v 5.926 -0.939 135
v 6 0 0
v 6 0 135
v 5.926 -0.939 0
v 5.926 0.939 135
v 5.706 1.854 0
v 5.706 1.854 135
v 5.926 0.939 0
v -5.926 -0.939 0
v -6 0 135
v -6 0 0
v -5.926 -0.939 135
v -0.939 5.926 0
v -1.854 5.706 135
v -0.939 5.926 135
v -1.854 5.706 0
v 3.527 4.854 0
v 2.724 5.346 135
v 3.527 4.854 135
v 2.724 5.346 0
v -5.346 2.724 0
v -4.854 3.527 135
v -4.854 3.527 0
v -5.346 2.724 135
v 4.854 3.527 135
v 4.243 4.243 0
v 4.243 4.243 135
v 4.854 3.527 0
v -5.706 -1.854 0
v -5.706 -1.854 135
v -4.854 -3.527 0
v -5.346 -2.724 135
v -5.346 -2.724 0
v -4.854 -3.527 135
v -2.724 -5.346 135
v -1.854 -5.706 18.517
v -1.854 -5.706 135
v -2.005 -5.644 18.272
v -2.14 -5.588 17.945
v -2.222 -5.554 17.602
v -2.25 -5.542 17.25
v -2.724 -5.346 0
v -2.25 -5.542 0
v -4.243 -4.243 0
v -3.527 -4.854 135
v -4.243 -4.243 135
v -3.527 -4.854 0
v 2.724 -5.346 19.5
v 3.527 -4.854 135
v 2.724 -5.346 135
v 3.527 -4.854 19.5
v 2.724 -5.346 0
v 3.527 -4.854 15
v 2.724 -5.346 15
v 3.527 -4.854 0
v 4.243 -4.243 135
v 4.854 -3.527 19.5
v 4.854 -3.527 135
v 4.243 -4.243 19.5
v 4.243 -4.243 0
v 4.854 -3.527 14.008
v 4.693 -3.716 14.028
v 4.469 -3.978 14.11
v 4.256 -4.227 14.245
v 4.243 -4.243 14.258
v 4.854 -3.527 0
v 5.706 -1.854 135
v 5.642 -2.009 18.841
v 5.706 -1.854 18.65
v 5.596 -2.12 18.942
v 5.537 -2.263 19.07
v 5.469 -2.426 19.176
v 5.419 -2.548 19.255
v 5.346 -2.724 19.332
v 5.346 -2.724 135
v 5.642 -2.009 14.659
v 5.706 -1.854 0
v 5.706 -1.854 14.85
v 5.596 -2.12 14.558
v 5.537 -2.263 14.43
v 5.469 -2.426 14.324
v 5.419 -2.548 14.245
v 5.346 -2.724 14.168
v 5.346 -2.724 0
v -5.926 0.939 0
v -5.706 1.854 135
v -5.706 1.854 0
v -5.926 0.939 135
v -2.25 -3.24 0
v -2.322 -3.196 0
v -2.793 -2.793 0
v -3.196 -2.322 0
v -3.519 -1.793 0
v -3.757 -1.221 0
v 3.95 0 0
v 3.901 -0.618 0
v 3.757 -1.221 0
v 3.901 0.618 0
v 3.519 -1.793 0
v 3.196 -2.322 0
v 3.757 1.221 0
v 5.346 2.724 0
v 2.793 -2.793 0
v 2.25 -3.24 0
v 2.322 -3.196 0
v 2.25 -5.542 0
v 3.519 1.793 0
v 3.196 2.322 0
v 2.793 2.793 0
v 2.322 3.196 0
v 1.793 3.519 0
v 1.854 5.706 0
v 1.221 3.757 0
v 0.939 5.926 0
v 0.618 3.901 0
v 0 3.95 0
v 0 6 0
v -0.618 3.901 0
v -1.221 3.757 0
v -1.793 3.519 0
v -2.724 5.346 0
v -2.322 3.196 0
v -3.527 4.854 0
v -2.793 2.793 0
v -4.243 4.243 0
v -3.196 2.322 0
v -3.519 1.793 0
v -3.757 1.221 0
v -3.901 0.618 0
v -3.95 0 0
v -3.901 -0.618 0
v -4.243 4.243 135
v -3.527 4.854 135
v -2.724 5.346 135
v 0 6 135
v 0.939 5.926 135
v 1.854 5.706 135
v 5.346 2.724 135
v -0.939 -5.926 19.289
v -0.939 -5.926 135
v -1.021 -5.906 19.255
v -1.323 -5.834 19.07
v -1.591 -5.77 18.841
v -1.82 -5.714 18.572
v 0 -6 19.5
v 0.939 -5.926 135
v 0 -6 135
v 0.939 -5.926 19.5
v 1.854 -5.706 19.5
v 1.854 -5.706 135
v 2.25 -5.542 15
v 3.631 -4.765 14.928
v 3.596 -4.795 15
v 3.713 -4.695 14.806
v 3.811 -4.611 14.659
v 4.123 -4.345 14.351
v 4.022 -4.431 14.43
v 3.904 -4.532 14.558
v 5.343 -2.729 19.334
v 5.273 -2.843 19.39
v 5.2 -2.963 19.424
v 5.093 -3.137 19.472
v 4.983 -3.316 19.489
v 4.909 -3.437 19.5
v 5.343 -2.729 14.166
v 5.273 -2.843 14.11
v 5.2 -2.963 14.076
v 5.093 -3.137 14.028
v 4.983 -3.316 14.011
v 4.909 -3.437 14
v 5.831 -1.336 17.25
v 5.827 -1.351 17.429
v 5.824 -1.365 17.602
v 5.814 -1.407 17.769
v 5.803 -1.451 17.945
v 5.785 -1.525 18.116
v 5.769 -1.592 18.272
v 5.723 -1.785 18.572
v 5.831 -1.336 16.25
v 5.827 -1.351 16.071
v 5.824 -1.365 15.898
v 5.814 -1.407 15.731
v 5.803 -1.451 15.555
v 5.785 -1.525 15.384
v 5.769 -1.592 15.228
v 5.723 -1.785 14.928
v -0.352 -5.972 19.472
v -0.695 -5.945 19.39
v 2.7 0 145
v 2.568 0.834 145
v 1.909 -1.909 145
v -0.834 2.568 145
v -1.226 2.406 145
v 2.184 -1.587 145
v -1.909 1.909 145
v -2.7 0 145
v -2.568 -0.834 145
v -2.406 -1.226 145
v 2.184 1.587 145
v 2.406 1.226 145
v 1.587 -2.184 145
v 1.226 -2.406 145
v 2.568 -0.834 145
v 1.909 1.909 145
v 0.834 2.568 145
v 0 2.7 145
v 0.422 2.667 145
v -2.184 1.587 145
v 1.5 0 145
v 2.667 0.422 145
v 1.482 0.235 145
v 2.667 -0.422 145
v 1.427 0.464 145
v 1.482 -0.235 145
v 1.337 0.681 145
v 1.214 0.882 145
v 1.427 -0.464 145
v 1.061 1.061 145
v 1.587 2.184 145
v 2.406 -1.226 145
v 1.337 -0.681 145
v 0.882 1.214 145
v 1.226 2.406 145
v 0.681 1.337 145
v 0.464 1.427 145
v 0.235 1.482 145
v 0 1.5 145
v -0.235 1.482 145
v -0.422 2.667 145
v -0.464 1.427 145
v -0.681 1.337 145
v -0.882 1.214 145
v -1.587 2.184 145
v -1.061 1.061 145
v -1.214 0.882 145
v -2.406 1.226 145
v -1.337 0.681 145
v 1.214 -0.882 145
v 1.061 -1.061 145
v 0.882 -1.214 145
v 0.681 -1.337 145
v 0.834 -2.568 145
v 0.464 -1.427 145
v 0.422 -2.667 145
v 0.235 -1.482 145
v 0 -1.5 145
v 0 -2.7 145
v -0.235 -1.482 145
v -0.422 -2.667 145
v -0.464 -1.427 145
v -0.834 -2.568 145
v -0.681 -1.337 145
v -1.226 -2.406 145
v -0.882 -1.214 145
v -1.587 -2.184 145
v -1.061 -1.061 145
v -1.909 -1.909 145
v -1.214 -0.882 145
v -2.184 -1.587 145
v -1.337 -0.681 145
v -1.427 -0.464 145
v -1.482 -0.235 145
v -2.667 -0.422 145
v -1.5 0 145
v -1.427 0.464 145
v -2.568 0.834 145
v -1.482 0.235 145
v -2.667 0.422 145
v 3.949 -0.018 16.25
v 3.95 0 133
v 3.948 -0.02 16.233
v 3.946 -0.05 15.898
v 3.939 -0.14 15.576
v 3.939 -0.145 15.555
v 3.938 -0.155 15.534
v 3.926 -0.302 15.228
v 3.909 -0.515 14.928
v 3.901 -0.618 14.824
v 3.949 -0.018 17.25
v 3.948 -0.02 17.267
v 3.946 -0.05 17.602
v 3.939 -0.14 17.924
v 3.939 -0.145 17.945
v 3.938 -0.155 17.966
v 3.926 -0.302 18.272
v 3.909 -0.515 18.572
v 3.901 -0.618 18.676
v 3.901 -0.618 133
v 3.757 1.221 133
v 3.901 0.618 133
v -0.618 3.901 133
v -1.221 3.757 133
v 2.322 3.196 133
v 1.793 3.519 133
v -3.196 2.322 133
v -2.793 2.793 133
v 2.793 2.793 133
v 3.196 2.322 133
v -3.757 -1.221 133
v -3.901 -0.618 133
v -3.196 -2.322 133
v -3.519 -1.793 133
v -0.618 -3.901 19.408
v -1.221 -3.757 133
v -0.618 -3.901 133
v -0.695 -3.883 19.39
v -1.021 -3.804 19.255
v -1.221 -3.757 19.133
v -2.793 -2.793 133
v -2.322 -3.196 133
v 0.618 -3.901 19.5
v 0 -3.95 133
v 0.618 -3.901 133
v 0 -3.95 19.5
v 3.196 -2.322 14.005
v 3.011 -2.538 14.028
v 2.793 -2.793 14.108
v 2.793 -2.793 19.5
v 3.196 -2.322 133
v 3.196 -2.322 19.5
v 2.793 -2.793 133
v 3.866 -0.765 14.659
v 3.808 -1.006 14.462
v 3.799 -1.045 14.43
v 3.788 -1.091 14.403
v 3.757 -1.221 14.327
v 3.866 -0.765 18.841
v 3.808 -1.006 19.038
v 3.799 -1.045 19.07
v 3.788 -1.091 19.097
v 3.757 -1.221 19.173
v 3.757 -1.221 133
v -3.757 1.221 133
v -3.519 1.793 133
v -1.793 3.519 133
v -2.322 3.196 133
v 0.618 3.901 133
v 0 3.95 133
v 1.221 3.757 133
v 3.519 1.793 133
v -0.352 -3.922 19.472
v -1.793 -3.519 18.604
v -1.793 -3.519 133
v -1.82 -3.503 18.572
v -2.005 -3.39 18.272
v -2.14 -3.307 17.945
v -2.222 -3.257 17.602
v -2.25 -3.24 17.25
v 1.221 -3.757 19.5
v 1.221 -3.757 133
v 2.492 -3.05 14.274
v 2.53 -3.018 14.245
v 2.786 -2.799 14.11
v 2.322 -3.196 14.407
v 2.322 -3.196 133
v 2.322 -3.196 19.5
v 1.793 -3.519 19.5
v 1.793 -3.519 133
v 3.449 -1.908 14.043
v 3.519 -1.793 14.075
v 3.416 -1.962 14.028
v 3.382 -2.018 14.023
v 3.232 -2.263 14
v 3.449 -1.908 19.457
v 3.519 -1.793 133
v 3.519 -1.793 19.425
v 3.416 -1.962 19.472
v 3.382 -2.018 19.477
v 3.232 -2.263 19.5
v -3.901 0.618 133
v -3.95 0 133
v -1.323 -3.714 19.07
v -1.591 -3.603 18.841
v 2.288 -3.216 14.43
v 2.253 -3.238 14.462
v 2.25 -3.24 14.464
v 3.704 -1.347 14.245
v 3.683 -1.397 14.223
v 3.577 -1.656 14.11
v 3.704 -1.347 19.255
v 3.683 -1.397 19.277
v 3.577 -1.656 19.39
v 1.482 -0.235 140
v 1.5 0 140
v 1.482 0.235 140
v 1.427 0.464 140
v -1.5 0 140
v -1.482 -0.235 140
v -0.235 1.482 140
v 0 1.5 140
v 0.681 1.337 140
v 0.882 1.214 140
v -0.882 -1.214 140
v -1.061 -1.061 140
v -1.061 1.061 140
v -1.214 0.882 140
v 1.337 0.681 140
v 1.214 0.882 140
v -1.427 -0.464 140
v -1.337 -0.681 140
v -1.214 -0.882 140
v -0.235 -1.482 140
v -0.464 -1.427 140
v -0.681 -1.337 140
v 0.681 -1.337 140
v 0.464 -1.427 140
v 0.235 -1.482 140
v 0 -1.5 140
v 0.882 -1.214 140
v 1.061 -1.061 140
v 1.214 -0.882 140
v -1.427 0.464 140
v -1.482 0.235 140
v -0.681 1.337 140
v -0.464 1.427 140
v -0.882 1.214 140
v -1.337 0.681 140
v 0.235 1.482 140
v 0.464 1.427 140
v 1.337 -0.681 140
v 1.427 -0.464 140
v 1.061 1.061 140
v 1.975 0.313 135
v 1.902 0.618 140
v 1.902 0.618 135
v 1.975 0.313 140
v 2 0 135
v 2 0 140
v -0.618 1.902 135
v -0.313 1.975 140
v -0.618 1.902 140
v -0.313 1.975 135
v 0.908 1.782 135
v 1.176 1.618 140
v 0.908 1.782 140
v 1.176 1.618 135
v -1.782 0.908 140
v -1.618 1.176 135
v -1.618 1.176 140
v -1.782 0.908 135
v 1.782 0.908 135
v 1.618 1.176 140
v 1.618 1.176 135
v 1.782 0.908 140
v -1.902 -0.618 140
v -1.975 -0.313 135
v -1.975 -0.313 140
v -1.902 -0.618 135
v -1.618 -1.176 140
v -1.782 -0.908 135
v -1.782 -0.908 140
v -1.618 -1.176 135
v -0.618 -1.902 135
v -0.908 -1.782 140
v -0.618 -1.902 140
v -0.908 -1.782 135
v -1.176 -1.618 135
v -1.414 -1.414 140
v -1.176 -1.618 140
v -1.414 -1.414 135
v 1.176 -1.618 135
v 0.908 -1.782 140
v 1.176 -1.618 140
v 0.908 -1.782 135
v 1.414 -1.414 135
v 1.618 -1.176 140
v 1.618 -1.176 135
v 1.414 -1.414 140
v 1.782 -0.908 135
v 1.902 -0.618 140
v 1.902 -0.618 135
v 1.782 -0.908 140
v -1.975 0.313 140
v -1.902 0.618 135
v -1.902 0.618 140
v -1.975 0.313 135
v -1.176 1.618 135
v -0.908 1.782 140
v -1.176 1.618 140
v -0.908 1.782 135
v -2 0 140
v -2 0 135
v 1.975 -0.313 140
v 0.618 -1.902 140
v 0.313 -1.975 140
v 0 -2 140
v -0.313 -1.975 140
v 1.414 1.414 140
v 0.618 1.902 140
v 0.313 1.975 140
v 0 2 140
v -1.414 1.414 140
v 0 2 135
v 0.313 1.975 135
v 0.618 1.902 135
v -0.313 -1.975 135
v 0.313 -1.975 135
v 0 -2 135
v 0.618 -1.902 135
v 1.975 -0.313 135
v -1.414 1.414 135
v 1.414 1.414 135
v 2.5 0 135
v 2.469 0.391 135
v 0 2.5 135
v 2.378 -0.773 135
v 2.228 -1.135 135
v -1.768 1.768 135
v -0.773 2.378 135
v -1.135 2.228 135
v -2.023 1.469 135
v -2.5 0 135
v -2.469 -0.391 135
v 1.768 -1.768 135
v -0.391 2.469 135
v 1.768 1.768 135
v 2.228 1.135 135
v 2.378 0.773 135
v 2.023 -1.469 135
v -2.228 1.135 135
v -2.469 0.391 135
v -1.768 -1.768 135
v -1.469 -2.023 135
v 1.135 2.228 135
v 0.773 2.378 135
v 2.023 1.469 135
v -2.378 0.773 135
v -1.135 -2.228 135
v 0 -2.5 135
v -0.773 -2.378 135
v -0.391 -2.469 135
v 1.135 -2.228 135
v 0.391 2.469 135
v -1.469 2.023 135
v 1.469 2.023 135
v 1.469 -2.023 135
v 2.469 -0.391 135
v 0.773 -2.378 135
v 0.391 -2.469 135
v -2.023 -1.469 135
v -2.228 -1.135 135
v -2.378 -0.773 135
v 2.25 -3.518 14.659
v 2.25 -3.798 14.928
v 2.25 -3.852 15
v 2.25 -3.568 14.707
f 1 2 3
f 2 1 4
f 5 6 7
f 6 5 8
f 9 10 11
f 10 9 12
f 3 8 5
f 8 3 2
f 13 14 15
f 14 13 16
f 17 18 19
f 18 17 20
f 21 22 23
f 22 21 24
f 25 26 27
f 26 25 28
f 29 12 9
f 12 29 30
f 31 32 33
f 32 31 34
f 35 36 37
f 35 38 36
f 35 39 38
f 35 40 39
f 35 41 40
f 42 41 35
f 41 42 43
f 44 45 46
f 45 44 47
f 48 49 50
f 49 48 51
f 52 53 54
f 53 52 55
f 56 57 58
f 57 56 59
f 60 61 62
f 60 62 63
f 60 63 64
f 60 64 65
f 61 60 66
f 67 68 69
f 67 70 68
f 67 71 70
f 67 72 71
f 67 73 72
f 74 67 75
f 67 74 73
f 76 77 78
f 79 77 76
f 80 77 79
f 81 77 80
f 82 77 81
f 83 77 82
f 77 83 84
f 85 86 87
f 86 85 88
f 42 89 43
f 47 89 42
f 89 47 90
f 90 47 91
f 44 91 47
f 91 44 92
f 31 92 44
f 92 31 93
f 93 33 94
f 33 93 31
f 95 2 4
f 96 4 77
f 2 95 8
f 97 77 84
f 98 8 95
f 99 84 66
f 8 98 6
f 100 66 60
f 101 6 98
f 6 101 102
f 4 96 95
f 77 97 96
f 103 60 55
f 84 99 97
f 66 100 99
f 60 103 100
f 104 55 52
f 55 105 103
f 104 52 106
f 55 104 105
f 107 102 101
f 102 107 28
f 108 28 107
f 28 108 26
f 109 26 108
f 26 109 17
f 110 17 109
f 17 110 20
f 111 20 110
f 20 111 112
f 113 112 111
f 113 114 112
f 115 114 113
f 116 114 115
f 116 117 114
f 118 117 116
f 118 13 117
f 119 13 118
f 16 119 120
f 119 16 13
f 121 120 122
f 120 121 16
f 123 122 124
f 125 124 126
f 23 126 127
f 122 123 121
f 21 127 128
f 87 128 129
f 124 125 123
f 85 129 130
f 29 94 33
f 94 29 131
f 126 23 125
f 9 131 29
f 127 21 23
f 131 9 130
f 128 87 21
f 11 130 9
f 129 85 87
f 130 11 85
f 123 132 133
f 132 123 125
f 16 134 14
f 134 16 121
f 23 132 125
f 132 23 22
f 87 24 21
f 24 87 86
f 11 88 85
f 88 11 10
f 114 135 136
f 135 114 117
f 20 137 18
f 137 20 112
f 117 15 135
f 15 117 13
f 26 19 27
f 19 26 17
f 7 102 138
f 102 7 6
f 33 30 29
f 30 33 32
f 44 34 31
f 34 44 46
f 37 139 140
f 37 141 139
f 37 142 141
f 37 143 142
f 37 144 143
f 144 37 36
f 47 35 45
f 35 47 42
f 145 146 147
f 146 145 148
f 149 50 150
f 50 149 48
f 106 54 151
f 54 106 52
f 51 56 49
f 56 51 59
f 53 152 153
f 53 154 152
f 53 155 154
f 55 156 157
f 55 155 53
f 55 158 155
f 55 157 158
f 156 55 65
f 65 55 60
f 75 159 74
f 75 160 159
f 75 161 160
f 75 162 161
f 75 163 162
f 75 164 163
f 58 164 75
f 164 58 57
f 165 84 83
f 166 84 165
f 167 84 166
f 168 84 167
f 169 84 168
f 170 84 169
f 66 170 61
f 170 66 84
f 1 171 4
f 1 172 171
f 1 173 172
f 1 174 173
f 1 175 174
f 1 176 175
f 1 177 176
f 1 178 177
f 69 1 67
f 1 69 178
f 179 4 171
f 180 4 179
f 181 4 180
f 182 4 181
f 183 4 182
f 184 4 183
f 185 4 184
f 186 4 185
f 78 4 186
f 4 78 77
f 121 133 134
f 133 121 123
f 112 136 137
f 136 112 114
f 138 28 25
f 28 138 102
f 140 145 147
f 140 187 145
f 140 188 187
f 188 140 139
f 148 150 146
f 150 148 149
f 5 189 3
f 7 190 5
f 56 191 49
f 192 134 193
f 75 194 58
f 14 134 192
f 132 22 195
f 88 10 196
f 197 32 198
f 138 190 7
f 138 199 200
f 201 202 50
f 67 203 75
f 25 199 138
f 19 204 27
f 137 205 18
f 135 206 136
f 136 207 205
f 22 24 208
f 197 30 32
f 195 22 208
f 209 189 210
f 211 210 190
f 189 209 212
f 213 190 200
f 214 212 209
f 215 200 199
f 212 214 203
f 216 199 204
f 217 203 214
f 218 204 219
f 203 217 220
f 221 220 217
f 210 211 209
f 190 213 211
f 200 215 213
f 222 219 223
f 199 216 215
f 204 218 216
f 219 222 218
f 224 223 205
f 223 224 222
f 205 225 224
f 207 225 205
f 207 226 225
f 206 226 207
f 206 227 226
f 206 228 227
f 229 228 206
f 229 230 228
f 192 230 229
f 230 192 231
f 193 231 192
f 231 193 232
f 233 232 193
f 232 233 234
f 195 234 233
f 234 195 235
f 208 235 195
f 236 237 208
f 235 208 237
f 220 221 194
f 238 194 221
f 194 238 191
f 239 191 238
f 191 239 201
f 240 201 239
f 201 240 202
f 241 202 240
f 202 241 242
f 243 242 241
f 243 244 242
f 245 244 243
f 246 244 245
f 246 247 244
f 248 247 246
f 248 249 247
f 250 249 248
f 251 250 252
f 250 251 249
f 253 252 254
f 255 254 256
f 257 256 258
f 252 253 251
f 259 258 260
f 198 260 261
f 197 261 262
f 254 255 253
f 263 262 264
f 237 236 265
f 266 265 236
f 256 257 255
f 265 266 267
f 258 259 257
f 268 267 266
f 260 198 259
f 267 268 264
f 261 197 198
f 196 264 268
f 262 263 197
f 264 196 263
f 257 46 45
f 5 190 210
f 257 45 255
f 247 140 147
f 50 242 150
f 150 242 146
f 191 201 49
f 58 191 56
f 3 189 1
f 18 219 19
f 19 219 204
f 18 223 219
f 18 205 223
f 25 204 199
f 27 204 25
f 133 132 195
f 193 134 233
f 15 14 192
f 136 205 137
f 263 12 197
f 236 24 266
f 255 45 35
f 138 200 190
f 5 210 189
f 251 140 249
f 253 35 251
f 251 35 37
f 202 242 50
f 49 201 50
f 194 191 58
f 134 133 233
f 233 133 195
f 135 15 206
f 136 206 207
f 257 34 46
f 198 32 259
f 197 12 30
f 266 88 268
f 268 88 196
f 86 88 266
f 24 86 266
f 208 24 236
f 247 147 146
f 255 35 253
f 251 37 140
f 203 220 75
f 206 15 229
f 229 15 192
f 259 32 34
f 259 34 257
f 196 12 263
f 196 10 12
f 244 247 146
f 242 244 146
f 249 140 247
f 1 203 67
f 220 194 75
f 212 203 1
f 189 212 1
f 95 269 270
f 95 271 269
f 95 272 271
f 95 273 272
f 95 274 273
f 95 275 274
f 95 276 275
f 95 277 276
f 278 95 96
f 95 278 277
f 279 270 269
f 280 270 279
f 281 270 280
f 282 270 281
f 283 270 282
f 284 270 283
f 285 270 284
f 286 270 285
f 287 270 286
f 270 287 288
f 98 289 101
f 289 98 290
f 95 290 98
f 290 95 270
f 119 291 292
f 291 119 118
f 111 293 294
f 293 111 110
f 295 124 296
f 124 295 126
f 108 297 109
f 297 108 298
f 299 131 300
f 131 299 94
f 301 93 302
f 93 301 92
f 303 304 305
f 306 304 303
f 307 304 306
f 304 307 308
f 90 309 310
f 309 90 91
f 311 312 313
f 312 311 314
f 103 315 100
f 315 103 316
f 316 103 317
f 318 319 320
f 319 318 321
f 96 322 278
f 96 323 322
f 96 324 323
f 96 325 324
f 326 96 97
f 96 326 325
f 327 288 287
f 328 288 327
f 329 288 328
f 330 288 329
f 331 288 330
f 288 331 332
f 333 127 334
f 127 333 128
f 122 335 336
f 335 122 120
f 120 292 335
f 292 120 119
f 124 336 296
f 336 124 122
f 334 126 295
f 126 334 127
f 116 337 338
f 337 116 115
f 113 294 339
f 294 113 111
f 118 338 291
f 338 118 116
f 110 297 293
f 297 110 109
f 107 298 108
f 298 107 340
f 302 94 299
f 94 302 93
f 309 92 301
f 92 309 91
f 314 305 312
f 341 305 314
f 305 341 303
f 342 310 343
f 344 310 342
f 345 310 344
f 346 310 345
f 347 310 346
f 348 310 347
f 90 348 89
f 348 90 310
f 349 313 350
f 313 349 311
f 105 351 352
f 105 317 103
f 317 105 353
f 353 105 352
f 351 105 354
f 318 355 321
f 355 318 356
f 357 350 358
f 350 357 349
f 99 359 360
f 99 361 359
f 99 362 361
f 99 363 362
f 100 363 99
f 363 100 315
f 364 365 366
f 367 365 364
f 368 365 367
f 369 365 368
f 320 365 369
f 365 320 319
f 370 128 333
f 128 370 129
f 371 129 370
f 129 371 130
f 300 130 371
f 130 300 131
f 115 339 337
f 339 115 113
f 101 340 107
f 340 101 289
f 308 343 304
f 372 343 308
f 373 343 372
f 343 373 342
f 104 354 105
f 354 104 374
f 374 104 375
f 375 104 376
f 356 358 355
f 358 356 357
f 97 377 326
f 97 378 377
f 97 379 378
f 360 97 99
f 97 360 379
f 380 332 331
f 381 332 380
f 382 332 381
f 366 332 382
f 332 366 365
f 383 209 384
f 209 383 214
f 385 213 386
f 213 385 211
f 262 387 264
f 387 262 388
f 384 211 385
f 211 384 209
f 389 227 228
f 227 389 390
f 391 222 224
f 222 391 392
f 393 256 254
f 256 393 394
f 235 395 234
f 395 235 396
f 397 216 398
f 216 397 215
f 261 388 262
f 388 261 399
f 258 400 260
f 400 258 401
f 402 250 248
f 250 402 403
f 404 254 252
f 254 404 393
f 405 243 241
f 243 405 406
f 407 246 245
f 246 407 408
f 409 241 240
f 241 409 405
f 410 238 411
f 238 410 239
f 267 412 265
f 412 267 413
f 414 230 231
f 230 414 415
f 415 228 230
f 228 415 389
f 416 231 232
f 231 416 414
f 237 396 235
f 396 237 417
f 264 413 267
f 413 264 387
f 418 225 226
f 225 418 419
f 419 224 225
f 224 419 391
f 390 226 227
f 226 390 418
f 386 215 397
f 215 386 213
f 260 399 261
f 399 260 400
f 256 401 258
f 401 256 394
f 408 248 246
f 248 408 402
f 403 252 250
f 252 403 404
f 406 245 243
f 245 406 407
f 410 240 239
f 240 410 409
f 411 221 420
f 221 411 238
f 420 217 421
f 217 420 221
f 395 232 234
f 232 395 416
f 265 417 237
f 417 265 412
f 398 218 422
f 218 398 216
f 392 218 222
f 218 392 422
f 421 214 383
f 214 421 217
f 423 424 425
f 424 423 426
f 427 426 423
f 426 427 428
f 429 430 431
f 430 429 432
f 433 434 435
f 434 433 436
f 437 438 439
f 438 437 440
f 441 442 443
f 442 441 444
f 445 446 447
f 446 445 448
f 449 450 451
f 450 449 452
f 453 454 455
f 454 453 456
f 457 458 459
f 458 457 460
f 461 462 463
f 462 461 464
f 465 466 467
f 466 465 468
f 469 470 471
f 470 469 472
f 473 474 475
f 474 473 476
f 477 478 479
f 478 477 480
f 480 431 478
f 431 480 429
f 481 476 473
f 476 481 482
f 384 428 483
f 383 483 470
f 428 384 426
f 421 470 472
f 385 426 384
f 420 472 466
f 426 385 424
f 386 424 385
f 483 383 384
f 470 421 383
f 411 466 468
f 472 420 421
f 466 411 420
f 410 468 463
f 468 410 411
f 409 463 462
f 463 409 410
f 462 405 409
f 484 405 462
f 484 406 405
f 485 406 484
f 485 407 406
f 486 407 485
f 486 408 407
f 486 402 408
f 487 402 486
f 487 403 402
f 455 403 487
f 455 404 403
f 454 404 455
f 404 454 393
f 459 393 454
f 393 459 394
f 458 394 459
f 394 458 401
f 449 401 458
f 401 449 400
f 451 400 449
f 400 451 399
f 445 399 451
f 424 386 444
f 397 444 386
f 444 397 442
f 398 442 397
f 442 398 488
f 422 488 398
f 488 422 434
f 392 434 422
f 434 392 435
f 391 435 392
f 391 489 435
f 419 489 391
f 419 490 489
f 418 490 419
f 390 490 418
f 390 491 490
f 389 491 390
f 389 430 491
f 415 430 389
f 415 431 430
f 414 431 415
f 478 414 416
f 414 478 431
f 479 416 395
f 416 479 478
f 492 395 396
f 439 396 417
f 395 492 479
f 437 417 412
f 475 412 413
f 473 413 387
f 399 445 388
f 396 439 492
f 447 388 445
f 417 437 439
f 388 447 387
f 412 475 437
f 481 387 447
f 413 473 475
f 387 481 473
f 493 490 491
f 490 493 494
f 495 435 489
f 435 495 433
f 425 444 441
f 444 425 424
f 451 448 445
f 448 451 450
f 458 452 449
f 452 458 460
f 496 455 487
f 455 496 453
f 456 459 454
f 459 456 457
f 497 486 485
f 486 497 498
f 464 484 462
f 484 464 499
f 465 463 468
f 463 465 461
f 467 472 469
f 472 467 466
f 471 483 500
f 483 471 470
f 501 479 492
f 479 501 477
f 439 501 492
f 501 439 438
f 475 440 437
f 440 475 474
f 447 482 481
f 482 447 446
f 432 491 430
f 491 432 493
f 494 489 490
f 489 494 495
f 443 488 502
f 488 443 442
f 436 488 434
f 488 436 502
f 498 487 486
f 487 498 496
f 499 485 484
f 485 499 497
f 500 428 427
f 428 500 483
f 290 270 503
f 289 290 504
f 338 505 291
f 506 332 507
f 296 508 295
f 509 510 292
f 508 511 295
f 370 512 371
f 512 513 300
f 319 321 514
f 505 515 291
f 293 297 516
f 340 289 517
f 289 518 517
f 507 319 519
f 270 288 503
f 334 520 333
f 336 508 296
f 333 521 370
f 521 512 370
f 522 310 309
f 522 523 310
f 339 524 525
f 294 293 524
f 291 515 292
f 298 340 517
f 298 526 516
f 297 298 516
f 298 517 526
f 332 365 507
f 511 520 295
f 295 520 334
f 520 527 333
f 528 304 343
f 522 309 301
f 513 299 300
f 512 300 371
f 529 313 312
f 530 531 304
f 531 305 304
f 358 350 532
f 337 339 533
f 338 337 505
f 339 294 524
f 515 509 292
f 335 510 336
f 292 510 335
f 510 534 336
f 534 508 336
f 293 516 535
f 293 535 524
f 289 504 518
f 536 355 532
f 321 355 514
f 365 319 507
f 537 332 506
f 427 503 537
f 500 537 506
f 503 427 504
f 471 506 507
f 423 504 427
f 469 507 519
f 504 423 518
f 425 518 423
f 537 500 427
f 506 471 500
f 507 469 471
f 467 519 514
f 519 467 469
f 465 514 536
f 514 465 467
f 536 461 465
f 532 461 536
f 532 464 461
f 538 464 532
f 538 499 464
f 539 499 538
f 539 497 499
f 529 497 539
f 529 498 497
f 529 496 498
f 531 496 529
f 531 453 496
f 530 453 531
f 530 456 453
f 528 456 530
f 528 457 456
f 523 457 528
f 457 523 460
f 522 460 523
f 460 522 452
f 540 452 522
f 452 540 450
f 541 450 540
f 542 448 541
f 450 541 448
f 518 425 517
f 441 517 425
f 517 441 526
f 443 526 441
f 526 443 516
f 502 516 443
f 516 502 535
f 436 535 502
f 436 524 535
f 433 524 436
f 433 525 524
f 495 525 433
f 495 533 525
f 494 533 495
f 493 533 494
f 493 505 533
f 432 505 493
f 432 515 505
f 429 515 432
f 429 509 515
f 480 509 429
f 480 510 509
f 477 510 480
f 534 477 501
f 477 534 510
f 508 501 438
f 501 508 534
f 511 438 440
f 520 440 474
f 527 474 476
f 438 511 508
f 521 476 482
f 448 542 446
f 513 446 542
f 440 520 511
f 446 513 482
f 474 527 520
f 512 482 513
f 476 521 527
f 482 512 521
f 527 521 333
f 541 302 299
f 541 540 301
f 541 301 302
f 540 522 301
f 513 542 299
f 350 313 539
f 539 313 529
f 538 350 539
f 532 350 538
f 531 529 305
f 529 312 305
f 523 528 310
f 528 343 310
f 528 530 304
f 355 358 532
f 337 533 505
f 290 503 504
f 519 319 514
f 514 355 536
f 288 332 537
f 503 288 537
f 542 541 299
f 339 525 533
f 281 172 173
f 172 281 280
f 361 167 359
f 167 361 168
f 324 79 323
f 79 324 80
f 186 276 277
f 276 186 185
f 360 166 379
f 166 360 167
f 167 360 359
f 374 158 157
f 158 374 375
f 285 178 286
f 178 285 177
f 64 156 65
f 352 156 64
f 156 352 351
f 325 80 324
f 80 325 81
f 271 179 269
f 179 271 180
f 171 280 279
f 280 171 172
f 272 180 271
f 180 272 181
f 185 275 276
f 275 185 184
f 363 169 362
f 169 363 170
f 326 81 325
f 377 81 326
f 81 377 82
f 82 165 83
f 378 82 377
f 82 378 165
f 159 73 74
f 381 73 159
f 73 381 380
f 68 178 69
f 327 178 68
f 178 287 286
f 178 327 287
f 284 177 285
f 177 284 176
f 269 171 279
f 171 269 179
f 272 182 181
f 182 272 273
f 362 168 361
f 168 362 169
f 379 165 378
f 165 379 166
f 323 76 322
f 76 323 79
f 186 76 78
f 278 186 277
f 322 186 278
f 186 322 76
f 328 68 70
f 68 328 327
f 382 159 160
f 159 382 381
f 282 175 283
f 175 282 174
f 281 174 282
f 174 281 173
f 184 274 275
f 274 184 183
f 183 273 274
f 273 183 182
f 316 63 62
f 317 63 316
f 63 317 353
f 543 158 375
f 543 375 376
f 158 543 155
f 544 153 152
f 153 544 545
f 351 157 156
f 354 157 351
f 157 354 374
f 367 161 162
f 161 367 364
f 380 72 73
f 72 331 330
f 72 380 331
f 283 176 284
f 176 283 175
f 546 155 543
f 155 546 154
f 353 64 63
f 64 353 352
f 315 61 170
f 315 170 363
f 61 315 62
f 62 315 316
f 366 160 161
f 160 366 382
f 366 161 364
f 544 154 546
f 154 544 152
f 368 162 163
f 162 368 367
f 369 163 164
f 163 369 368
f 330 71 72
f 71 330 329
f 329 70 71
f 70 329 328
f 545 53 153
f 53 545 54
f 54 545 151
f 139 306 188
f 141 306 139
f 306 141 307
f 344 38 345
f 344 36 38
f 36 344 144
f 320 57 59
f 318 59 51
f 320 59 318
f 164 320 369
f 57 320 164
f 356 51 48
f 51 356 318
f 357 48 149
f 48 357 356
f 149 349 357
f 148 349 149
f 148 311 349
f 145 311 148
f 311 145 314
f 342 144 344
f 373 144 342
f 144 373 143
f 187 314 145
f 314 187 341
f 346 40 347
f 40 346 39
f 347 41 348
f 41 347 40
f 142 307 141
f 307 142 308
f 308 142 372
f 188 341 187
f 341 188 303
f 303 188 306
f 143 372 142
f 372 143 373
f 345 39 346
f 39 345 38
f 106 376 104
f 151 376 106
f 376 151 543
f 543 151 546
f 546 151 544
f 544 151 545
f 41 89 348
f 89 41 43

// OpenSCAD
/*
Bolt Action Pen
Design by Sithrazer
*/

$fn=40;

color("green") difference(){
    Main_Tube();
    Bolt_Slot();
}

module Main_Tube(){
    difference(){
        union(){
            linear_extrude(135) circle(d=12); // main body
            translate([0,0,135]) cylinder(d1=12,d2=5.4,h=10); // tip cone
        }
        // ID/negative space
        linear_extrude(133) circle(d=7.9); //primary negative space
        linear_extrude(146) circle(d=3); //tip exit diameter
        linear_extrude(140) circle(d=4); //spring shelf
        translate([0,0,133]) cylinder(d1=7.9,d2=5,h=2); //transitions main body cavity to near tip size
    }
}

module Bolt_Slot(){
    hull(){
        rotate([0,0,55]) translate([0,-3,17.25]) rotate([90,0,0]) cylinder(d=4.5,h=5);
        rotate([0,0,55]) translate([0,-3,16.25]) rotate([90,0,0]) cylinder(d=4.5,h=5);
    }
    hull(){
        translate([0,-3,17.25]) rotate([90,0,0]) cylinder(d=4.5,h=5);
        rotate([0,0,55]) translate([0,-3,17.25]) rotate([90,0,0]) cylinder(d=4.5,h=5);
    }
    
    hull(){
        translate([0,-3,17.25]) rotate([90,0,0]) cylinder(d=4.5,h=5);
        translate([0,-3,0]) rotate([90,0,0]) cylinder(d=4.5,h=5);
    }
}
